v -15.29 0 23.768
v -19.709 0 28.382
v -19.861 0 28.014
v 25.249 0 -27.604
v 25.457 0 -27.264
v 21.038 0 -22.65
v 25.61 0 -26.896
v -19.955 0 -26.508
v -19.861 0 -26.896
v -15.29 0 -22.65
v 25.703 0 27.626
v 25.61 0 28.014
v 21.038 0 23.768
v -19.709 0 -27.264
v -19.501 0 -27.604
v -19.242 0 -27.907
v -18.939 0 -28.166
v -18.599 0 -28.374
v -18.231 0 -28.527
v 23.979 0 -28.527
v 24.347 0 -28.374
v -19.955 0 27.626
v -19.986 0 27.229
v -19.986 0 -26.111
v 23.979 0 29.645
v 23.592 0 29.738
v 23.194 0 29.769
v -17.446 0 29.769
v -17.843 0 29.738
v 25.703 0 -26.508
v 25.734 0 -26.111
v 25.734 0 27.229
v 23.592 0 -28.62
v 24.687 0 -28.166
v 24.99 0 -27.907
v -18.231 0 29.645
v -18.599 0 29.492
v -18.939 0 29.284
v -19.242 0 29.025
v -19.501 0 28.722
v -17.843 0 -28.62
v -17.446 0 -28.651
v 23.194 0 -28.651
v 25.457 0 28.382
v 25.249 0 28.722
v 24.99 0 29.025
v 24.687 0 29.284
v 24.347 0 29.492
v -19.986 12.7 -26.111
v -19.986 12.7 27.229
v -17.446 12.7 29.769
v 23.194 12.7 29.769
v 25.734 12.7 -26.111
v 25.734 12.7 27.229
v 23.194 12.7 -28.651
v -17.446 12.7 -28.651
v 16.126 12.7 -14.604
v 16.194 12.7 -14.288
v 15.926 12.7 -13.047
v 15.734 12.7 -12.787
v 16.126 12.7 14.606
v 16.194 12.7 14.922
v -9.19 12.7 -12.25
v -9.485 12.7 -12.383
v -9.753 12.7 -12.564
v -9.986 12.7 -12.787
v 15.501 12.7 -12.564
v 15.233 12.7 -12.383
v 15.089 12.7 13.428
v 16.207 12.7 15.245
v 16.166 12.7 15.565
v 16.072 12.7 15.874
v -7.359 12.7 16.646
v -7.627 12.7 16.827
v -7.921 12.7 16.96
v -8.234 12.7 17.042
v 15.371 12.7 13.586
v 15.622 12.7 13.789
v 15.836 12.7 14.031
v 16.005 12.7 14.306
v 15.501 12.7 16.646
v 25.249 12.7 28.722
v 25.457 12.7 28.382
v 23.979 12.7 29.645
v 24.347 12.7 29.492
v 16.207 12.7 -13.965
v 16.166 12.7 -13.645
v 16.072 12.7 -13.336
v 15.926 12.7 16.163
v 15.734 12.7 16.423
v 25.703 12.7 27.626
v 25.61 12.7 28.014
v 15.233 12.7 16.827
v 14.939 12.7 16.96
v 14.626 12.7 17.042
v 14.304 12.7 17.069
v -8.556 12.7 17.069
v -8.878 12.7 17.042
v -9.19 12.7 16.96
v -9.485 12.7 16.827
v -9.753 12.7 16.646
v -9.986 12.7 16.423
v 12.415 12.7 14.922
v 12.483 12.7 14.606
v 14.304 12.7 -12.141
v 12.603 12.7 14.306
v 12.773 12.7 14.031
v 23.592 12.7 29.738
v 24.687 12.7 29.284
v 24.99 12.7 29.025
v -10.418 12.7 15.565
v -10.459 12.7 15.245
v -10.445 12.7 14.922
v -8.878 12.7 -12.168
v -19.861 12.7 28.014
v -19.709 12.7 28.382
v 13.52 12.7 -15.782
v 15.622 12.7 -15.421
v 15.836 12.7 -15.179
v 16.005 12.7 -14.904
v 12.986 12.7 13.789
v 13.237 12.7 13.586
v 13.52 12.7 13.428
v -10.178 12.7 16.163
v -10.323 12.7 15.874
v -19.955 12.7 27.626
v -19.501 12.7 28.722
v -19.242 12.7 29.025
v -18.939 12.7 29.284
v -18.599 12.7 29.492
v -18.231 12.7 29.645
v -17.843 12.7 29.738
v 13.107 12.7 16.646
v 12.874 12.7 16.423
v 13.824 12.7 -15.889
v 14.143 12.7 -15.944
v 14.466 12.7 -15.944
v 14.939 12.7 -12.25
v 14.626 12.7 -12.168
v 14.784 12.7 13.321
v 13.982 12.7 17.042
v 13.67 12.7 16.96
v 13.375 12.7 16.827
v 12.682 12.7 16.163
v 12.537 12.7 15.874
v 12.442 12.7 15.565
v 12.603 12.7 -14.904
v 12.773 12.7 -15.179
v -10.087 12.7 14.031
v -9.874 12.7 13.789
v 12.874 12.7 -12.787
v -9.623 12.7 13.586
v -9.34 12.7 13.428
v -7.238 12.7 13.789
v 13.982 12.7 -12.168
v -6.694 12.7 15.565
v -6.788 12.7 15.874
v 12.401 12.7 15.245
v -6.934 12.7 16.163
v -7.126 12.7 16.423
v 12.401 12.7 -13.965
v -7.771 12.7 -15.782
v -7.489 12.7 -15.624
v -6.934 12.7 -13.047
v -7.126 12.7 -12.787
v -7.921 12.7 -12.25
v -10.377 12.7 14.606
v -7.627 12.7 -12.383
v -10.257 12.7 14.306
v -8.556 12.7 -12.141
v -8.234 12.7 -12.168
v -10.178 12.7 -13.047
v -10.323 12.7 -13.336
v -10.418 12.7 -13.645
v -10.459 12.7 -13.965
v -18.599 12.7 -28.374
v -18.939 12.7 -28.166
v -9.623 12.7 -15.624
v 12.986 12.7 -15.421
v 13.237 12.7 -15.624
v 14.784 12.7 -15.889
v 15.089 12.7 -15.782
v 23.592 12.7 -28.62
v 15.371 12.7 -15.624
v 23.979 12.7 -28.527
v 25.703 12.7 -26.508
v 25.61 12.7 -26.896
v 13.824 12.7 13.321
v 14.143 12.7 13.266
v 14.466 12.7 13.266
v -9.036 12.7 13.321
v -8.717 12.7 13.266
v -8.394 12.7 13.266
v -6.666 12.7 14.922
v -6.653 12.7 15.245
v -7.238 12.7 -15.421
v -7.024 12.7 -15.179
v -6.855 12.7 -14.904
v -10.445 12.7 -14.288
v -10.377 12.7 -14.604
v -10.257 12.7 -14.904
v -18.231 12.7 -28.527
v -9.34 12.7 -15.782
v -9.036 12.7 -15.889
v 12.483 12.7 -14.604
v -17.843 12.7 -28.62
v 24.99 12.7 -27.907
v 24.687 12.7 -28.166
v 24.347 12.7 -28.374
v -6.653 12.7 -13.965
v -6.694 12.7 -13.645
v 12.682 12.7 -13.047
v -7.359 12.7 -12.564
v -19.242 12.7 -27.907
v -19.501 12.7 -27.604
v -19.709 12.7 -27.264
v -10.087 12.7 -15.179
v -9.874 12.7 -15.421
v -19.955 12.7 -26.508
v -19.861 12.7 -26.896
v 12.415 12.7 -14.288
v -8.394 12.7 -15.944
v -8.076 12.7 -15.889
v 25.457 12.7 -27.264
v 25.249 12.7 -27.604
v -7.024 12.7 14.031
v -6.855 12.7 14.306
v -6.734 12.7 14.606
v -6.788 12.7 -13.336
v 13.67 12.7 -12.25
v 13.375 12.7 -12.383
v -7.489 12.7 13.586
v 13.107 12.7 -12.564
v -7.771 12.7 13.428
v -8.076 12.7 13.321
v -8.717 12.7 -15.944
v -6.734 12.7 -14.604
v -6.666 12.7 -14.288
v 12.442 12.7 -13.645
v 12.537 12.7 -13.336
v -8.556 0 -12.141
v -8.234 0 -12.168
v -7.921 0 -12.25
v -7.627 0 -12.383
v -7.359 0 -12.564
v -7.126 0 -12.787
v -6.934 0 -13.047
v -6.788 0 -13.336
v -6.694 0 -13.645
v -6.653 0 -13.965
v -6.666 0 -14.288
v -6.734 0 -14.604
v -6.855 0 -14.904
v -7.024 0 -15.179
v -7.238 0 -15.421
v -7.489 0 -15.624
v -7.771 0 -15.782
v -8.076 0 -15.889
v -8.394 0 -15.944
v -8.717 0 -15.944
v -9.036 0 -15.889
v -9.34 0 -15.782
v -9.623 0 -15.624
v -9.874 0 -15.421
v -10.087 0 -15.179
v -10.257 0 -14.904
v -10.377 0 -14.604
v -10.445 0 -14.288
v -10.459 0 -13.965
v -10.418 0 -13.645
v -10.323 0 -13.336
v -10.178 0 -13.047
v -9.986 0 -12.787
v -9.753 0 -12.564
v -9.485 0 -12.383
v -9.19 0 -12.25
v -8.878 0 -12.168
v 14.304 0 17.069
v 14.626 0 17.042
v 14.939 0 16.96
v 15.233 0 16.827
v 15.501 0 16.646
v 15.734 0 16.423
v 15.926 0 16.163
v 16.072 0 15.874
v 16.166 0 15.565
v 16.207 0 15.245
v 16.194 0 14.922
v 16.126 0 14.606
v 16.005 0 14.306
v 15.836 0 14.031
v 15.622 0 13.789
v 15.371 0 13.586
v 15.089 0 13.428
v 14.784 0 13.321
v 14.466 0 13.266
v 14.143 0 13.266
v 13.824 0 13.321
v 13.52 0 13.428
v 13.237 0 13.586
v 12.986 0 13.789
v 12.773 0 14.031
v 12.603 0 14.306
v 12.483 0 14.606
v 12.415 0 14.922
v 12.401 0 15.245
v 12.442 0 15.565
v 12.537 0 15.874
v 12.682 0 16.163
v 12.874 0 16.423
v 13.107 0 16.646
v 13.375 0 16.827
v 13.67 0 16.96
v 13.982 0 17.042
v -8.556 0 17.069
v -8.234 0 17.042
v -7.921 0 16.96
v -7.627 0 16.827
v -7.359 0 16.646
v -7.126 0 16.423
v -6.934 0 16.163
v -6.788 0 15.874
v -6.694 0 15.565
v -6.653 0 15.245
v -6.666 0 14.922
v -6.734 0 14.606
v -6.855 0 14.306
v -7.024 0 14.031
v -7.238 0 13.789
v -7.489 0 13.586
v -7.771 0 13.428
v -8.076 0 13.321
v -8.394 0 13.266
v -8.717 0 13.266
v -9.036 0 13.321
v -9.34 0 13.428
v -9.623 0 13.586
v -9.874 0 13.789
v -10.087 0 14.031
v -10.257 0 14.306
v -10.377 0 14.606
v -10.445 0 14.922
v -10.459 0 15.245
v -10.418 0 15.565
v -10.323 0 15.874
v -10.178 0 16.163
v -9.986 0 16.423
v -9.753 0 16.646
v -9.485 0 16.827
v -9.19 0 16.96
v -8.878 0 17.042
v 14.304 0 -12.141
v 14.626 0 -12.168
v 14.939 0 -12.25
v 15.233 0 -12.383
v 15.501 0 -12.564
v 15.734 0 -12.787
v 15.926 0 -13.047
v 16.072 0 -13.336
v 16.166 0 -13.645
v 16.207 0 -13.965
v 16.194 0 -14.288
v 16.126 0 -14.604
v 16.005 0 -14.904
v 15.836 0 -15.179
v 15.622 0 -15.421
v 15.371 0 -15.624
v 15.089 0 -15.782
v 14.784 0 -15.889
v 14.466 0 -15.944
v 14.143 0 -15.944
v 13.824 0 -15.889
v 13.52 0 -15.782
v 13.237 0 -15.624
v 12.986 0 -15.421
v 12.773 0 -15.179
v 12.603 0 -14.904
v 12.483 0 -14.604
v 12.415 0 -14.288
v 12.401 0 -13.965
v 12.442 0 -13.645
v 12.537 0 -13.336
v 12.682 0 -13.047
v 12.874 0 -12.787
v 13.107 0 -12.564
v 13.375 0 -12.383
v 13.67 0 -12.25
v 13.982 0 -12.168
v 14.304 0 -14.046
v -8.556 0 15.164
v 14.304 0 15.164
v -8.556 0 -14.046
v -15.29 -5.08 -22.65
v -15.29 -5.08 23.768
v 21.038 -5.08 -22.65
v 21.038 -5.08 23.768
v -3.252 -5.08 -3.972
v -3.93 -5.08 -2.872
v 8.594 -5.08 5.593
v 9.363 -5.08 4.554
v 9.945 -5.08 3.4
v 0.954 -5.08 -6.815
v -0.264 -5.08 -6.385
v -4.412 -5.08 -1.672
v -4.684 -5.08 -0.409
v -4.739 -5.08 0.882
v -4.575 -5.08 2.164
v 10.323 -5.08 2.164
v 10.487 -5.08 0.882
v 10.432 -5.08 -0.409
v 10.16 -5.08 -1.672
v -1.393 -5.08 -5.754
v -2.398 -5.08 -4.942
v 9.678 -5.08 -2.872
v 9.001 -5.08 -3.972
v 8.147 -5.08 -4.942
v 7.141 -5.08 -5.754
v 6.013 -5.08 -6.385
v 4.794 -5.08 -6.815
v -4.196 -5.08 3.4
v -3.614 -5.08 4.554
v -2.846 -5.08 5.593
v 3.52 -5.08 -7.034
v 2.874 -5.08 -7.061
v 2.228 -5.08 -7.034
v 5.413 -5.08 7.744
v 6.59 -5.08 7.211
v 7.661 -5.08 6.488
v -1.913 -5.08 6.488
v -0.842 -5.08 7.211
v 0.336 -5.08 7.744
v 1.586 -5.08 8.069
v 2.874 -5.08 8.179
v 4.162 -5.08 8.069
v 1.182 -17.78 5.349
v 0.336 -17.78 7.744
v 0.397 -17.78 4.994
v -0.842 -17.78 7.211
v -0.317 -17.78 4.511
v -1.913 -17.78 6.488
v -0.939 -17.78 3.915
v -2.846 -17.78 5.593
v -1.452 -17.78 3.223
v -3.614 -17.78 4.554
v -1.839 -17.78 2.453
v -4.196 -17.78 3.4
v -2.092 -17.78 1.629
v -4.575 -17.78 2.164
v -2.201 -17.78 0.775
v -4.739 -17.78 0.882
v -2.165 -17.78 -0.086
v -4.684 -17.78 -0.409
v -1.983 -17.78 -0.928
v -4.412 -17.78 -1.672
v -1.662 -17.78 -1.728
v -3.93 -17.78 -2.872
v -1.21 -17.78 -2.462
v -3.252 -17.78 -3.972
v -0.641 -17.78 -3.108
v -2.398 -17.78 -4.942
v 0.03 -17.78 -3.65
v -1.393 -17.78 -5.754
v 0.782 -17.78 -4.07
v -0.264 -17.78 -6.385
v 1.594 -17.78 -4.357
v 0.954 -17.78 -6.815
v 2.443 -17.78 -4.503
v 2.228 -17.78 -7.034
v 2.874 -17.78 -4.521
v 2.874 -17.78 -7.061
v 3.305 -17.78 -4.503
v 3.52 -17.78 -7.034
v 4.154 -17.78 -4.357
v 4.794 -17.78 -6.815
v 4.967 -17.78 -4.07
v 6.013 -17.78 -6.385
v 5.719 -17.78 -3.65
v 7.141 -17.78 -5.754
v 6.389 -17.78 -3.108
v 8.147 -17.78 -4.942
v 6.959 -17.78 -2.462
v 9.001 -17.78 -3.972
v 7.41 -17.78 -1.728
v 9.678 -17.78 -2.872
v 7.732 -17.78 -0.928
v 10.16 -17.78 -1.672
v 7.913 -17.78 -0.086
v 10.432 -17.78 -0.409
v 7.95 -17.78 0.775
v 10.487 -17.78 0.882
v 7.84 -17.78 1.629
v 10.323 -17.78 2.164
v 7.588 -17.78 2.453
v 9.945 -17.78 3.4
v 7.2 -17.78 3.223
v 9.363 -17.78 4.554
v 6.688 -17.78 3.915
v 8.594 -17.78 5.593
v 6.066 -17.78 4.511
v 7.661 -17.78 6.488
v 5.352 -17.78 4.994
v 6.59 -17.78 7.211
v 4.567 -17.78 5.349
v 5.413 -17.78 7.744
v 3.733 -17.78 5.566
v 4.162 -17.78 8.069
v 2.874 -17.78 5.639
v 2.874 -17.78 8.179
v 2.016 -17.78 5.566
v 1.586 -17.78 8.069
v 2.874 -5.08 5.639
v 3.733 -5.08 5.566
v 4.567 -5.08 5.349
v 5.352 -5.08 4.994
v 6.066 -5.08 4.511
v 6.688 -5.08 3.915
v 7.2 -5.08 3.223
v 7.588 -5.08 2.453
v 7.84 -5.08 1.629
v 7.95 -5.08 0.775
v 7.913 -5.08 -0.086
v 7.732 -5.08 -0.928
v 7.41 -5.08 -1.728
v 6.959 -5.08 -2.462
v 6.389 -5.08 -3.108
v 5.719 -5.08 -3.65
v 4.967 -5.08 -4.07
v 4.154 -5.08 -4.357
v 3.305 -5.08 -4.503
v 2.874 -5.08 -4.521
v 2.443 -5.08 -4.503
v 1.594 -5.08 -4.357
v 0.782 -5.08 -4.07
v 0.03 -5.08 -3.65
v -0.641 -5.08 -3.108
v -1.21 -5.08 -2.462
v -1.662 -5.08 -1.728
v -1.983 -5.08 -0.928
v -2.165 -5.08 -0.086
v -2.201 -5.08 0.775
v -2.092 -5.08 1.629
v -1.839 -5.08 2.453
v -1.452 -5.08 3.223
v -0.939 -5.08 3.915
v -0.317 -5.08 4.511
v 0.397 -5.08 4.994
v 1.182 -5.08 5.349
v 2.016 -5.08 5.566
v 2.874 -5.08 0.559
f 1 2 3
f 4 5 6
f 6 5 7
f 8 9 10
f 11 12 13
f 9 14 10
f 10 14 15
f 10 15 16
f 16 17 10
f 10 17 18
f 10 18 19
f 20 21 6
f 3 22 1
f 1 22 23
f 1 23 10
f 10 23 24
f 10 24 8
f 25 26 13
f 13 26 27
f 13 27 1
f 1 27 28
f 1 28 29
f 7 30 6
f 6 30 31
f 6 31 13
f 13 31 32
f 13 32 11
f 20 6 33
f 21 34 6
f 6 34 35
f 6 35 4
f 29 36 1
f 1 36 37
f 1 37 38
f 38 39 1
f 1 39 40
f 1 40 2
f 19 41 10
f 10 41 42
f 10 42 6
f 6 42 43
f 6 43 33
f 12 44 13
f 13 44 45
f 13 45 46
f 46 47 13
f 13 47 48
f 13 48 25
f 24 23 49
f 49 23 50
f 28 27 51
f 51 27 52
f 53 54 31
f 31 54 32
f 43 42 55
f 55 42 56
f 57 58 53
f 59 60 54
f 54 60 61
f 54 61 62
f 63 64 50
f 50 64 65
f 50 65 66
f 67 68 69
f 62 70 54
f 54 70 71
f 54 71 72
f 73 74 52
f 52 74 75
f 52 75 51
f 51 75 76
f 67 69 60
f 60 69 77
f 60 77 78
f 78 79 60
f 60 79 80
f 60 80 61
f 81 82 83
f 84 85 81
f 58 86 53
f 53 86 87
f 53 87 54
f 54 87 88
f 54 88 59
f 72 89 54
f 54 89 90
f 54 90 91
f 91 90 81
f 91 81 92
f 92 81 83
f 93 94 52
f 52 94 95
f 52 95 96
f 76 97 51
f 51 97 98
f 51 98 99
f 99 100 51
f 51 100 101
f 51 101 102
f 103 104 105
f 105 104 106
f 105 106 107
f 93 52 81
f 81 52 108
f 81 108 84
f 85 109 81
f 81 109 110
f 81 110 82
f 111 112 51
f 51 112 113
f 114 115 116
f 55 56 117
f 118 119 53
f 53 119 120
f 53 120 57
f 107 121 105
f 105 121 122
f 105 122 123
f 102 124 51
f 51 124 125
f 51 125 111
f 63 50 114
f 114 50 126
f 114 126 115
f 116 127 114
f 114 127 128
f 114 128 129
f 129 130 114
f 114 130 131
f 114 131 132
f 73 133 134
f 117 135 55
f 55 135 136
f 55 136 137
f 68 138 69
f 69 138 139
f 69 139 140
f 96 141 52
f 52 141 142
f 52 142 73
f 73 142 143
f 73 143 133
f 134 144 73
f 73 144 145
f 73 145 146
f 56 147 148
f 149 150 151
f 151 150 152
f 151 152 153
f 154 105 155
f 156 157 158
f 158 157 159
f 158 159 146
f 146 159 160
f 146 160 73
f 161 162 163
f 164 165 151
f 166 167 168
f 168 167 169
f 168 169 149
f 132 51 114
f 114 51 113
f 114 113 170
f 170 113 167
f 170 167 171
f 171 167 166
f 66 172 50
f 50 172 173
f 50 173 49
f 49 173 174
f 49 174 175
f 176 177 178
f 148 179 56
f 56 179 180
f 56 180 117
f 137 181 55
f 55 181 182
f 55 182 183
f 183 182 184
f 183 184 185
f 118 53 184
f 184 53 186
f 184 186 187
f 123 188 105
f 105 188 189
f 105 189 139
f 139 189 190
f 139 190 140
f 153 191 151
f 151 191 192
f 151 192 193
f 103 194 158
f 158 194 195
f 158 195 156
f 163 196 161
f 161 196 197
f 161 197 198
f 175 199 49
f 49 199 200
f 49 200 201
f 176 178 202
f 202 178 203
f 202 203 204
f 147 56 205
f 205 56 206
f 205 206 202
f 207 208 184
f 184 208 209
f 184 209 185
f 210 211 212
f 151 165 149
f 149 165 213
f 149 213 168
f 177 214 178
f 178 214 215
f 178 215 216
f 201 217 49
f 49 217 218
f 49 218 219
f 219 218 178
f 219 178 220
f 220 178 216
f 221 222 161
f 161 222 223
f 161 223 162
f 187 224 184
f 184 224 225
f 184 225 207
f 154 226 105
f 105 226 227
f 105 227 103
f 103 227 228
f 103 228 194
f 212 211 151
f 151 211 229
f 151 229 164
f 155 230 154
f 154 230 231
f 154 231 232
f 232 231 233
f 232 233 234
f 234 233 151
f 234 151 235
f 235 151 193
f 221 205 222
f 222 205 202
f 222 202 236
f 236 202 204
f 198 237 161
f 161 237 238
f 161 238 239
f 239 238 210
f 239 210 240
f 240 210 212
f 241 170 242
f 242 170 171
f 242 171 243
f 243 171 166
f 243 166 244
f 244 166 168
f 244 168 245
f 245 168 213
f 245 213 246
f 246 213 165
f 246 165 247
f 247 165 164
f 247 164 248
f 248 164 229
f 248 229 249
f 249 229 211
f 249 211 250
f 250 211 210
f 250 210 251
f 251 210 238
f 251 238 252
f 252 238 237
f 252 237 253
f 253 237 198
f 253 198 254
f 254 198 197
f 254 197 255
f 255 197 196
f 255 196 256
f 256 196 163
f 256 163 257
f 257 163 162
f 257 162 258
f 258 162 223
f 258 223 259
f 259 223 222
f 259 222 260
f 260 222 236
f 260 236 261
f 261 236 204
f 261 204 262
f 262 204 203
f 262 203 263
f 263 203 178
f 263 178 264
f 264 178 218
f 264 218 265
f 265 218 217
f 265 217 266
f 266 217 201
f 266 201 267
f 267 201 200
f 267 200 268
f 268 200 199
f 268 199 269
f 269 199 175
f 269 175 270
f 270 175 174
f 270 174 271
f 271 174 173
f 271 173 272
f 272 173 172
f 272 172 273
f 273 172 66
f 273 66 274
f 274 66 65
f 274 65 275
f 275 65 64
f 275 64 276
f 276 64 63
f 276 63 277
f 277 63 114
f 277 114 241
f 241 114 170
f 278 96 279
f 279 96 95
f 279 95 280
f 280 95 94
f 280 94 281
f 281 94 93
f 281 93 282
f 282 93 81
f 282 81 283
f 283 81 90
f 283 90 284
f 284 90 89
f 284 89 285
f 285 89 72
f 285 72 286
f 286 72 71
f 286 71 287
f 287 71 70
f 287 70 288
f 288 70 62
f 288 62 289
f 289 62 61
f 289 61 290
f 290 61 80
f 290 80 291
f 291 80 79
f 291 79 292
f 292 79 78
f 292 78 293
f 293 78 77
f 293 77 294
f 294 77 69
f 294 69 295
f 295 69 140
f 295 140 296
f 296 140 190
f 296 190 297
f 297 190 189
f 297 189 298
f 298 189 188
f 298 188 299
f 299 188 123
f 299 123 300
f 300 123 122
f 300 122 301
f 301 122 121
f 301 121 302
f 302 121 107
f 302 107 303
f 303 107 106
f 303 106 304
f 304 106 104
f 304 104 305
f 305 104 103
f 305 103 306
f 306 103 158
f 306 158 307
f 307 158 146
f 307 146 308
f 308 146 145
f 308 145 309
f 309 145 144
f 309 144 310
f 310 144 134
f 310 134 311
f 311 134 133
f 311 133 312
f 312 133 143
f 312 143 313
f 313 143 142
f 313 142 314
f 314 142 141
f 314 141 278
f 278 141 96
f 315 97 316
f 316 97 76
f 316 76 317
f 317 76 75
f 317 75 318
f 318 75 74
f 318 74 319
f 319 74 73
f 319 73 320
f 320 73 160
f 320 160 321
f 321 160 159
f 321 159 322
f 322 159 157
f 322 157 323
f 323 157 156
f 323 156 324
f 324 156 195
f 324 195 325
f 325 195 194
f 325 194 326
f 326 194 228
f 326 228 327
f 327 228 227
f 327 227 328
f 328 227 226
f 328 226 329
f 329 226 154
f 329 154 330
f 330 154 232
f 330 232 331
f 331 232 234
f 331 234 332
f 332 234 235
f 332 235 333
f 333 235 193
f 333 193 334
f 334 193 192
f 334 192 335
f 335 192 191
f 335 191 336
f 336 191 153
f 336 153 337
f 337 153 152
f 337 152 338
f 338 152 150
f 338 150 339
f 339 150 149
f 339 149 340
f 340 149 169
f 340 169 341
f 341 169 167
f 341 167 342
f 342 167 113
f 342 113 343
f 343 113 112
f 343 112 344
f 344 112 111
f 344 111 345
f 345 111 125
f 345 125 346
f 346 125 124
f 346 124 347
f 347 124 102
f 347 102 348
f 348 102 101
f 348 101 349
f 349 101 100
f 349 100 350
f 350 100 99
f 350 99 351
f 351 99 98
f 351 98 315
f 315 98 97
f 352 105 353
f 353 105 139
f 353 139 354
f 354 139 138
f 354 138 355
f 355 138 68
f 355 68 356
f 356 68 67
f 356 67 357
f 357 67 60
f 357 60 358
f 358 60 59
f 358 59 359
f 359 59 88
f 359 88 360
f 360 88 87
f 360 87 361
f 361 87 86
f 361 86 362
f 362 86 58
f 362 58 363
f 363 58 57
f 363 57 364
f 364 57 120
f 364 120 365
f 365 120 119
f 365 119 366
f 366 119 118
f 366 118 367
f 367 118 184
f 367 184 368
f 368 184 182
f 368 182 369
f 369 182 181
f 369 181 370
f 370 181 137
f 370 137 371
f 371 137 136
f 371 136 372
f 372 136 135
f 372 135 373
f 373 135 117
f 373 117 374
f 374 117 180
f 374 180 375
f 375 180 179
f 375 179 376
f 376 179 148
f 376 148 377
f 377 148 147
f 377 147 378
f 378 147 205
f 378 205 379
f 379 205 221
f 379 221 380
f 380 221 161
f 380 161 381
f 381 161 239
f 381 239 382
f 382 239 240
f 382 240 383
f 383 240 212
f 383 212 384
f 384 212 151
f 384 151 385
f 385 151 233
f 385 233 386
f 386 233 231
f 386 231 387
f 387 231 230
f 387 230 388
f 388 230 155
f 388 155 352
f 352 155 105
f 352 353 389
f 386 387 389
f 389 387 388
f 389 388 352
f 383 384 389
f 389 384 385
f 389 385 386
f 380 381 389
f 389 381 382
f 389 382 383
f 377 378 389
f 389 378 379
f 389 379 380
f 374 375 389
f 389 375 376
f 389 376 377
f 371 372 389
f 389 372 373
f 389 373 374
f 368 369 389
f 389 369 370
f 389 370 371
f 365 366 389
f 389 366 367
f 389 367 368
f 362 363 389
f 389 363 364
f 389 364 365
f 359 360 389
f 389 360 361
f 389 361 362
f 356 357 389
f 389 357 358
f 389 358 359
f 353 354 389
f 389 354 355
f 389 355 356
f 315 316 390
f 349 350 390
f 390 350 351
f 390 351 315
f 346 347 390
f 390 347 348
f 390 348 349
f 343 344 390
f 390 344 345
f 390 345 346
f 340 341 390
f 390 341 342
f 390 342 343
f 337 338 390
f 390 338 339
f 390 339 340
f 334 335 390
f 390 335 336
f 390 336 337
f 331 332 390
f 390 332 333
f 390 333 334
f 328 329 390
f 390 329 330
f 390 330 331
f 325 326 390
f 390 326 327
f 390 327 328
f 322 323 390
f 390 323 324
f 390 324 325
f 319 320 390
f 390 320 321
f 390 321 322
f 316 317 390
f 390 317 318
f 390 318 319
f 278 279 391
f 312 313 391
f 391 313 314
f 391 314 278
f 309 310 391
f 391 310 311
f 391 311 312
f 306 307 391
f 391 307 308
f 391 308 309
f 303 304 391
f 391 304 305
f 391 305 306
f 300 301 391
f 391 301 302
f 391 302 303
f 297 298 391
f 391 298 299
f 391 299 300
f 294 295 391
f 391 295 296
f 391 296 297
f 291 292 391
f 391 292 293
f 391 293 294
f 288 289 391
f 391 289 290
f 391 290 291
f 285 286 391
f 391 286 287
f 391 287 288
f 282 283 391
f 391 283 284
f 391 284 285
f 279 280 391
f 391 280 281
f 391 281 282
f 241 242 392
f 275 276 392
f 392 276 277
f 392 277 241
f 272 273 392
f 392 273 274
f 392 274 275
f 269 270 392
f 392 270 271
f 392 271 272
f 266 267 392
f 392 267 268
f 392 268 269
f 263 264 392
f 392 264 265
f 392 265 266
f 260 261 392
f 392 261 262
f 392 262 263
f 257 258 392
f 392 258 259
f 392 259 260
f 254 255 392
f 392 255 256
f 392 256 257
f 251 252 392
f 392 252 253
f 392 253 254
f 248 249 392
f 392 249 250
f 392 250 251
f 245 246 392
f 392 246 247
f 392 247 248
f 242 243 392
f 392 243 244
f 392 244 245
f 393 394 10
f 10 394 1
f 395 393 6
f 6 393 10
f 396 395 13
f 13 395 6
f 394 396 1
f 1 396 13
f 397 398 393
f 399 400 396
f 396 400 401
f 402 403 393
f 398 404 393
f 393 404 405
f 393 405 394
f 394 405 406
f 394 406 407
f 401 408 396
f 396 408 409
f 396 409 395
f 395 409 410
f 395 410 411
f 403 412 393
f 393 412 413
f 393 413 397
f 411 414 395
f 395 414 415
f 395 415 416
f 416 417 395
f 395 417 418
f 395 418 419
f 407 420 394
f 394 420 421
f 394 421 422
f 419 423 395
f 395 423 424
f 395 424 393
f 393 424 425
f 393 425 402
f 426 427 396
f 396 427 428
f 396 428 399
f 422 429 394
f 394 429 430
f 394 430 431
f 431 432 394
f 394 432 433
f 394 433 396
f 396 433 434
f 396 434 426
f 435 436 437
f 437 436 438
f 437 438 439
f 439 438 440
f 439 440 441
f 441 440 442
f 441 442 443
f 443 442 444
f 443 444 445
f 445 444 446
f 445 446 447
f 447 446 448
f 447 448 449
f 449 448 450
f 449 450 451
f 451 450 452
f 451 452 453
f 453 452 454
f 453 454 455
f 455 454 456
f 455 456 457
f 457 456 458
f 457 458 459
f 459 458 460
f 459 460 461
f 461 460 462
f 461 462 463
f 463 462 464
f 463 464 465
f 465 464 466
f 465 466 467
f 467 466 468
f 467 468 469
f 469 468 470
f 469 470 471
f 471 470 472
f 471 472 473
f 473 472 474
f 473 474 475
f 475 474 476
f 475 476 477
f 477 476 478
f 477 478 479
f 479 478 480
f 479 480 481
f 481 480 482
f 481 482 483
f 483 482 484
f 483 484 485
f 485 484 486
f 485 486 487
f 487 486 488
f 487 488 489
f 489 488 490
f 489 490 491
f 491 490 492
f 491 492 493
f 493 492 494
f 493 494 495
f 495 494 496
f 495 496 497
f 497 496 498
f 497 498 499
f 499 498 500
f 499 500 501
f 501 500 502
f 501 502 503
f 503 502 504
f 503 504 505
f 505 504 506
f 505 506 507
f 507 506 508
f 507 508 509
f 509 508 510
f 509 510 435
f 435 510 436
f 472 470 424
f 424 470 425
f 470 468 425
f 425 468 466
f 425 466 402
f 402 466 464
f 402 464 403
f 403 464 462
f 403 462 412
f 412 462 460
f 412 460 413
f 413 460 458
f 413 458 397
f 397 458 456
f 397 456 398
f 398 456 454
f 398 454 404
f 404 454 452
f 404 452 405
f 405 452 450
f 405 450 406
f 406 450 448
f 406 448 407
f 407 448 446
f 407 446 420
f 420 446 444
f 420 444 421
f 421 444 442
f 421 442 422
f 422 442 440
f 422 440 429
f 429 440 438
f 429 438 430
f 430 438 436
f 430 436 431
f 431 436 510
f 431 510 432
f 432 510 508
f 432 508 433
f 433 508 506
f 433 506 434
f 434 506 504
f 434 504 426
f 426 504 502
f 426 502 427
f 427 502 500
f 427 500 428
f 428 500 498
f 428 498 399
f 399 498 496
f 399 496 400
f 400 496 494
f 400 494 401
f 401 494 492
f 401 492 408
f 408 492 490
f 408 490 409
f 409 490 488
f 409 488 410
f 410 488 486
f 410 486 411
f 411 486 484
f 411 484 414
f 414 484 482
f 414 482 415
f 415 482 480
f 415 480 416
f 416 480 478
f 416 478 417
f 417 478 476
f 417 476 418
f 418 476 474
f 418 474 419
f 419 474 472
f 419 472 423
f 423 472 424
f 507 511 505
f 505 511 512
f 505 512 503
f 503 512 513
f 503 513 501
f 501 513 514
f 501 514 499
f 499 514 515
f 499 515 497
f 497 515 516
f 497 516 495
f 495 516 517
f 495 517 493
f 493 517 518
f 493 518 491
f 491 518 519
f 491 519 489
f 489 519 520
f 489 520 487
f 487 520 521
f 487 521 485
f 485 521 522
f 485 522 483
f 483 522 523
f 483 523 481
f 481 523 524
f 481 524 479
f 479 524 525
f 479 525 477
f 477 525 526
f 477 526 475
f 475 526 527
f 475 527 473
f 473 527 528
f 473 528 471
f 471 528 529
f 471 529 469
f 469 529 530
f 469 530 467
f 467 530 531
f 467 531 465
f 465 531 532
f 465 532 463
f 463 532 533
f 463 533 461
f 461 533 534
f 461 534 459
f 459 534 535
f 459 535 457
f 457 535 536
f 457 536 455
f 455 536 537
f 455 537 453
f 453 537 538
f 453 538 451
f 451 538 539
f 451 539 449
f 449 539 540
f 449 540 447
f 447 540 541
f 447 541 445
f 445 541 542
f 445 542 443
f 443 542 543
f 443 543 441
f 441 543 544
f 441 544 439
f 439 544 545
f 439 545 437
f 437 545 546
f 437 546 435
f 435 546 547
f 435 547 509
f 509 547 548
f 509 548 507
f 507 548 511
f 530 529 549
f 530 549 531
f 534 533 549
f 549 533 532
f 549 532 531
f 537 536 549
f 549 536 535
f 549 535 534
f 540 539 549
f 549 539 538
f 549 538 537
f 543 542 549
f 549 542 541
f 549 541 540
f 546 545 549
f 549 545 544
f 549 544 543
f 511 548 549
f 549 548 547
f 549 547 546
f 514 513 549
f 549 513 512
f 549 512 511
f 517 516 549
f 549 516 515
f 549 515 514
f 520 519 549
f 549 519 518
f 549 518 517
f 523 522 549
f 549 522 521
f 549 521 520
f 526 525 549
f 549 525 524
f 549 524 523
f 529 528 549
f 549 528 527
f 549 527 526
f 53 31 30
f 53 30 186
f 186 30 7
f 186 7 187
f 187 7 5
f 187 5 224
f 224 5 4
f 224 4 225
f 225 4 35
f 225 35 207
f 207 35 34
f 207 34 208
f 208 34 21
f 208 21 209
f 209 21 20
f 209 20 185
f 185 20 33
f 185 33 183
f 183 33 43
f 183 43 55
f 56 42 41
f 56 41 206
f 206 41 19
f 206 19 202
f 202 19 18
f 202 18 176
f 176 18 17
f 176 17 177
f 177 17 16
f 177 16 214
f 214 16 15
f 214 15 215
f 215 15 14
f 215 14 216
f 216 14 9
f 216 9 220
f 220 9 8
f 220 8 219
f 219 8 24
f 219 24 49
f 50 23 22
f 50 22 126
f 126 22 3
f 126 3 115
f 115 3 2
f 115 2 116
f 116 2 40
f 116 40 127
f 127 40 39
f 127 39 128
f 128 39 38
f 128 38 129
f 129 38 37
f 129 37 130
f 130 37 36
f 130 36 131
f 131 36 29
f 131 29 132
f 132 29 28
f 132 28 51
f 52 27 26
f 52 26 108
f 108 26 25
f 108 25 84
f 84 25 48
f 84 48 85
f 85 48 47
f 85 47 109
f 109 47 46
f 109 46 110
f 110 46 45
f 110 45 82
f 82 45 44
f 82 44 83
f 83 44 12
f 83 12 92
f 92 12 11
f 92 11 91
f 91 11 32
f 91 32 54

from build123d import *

# Parameters (mm, degrees)
SKETCH1_W           = 45.72
SKETCH1_H           = 58.42
BOSS_EXTRUDE1_DEPTH = 12.7
SKETCH2_R           = 1.905
CUT_EXTRUDE1_DEPTH  = 42.348948188
SKETCH3_W           = 36.327462092
SKETCH3_H           = 46.418423785
BOSS_EXTRUDE2_DEPTH = 5.08
SKETCH4_R           = 7.62
SKETCH4_R_2         = 5.08
BOSS_EXTRUDE3_DEPTH = 12.7
FILLET1_R           = 2.54


with BuildPart() as part:
    # Sketch1 → Boss-Extrude1 (new body)
    with BuildSketch(Plane(origin=(0, 0, 0), x_dir=(1, 0, 0), z_dir=(0, 1, 0))):
        with Locations((2.874210526, -0.559043062)):
            Rectangle(SKETCH1_W, SKETCH1_H)
    extrude(amount=BOSS_EXTRUDE1_DEPTH)

    # Sketch2 → Cut-Extrude1 (cut, through all)
    with BuildSketch(Plane(origin=(0, 12.7, 0), x_dir=(1, 0, 0), z_dir=(0, 1, 0))):
        with Locations(Location((-8.555789474, 14.045956938, 0), (0, 0, 270))):
            Circle(SKETCH2_R)
        with Locations(Location((14.304210526, 14.045956938, 0), (0, 0, 270))):
            Circle(SKETCH2_R)
        with Locations(Location((-8.555789474, -15.164043062, 0), (0, 0, 270))):
            Circle(SKETCH2_R)
        with Locations(Location((14.304210526, -15.164043062, 0), (0, 0, 270))):
            Circle(SKETCH2_R)
    extrude(amount=-CUT_EXTRUDE1_DEPTH, mode=Mode.SUBTRACT)

    # Sketch3 → Boss-Extrude2 (add)
    with BuildSketch(Plane.XZ):
        with Locations((2.874210526, 0.559043062)):
            Rectangle(SKETCH3_W, SKETCH3_H)
    extrude(amount=BOSS_EXTRUDE2_DEPTH)

    # Sketch4 → Boss-Extrude3 (add)
    with BuildSketch(Plane.XZ.offset(5.08)):
        with Locations(Location((2.874210526, 0.559043062, 0), (0, 0, 270))):
            Circle(SKETCH4_R)
        with Locations(Location((2.874210526, 0.559043062, 0), (0, 0, 270))):
            Circle(SKETCH4_R_2, mode=Mode.SUBTRACT)
    extrude(amount=BOSS_EXTRUDE3_DEPTH)

    # Fillet1
    fillet1_edges = [part.edges().sort_by_distance(p)[0] for p in [
        (-19.985789474, 6.35, -28.650956938),
        (25.734210526, 6.35, -28.650956938),
        (25.734210526, 6.35, 29.769043062),
        (-19.985789474, 6.35, 29.769043062),
    ]]
    fillet(fillet1_edges, radius=FILLET1_R)


solid = part.part
